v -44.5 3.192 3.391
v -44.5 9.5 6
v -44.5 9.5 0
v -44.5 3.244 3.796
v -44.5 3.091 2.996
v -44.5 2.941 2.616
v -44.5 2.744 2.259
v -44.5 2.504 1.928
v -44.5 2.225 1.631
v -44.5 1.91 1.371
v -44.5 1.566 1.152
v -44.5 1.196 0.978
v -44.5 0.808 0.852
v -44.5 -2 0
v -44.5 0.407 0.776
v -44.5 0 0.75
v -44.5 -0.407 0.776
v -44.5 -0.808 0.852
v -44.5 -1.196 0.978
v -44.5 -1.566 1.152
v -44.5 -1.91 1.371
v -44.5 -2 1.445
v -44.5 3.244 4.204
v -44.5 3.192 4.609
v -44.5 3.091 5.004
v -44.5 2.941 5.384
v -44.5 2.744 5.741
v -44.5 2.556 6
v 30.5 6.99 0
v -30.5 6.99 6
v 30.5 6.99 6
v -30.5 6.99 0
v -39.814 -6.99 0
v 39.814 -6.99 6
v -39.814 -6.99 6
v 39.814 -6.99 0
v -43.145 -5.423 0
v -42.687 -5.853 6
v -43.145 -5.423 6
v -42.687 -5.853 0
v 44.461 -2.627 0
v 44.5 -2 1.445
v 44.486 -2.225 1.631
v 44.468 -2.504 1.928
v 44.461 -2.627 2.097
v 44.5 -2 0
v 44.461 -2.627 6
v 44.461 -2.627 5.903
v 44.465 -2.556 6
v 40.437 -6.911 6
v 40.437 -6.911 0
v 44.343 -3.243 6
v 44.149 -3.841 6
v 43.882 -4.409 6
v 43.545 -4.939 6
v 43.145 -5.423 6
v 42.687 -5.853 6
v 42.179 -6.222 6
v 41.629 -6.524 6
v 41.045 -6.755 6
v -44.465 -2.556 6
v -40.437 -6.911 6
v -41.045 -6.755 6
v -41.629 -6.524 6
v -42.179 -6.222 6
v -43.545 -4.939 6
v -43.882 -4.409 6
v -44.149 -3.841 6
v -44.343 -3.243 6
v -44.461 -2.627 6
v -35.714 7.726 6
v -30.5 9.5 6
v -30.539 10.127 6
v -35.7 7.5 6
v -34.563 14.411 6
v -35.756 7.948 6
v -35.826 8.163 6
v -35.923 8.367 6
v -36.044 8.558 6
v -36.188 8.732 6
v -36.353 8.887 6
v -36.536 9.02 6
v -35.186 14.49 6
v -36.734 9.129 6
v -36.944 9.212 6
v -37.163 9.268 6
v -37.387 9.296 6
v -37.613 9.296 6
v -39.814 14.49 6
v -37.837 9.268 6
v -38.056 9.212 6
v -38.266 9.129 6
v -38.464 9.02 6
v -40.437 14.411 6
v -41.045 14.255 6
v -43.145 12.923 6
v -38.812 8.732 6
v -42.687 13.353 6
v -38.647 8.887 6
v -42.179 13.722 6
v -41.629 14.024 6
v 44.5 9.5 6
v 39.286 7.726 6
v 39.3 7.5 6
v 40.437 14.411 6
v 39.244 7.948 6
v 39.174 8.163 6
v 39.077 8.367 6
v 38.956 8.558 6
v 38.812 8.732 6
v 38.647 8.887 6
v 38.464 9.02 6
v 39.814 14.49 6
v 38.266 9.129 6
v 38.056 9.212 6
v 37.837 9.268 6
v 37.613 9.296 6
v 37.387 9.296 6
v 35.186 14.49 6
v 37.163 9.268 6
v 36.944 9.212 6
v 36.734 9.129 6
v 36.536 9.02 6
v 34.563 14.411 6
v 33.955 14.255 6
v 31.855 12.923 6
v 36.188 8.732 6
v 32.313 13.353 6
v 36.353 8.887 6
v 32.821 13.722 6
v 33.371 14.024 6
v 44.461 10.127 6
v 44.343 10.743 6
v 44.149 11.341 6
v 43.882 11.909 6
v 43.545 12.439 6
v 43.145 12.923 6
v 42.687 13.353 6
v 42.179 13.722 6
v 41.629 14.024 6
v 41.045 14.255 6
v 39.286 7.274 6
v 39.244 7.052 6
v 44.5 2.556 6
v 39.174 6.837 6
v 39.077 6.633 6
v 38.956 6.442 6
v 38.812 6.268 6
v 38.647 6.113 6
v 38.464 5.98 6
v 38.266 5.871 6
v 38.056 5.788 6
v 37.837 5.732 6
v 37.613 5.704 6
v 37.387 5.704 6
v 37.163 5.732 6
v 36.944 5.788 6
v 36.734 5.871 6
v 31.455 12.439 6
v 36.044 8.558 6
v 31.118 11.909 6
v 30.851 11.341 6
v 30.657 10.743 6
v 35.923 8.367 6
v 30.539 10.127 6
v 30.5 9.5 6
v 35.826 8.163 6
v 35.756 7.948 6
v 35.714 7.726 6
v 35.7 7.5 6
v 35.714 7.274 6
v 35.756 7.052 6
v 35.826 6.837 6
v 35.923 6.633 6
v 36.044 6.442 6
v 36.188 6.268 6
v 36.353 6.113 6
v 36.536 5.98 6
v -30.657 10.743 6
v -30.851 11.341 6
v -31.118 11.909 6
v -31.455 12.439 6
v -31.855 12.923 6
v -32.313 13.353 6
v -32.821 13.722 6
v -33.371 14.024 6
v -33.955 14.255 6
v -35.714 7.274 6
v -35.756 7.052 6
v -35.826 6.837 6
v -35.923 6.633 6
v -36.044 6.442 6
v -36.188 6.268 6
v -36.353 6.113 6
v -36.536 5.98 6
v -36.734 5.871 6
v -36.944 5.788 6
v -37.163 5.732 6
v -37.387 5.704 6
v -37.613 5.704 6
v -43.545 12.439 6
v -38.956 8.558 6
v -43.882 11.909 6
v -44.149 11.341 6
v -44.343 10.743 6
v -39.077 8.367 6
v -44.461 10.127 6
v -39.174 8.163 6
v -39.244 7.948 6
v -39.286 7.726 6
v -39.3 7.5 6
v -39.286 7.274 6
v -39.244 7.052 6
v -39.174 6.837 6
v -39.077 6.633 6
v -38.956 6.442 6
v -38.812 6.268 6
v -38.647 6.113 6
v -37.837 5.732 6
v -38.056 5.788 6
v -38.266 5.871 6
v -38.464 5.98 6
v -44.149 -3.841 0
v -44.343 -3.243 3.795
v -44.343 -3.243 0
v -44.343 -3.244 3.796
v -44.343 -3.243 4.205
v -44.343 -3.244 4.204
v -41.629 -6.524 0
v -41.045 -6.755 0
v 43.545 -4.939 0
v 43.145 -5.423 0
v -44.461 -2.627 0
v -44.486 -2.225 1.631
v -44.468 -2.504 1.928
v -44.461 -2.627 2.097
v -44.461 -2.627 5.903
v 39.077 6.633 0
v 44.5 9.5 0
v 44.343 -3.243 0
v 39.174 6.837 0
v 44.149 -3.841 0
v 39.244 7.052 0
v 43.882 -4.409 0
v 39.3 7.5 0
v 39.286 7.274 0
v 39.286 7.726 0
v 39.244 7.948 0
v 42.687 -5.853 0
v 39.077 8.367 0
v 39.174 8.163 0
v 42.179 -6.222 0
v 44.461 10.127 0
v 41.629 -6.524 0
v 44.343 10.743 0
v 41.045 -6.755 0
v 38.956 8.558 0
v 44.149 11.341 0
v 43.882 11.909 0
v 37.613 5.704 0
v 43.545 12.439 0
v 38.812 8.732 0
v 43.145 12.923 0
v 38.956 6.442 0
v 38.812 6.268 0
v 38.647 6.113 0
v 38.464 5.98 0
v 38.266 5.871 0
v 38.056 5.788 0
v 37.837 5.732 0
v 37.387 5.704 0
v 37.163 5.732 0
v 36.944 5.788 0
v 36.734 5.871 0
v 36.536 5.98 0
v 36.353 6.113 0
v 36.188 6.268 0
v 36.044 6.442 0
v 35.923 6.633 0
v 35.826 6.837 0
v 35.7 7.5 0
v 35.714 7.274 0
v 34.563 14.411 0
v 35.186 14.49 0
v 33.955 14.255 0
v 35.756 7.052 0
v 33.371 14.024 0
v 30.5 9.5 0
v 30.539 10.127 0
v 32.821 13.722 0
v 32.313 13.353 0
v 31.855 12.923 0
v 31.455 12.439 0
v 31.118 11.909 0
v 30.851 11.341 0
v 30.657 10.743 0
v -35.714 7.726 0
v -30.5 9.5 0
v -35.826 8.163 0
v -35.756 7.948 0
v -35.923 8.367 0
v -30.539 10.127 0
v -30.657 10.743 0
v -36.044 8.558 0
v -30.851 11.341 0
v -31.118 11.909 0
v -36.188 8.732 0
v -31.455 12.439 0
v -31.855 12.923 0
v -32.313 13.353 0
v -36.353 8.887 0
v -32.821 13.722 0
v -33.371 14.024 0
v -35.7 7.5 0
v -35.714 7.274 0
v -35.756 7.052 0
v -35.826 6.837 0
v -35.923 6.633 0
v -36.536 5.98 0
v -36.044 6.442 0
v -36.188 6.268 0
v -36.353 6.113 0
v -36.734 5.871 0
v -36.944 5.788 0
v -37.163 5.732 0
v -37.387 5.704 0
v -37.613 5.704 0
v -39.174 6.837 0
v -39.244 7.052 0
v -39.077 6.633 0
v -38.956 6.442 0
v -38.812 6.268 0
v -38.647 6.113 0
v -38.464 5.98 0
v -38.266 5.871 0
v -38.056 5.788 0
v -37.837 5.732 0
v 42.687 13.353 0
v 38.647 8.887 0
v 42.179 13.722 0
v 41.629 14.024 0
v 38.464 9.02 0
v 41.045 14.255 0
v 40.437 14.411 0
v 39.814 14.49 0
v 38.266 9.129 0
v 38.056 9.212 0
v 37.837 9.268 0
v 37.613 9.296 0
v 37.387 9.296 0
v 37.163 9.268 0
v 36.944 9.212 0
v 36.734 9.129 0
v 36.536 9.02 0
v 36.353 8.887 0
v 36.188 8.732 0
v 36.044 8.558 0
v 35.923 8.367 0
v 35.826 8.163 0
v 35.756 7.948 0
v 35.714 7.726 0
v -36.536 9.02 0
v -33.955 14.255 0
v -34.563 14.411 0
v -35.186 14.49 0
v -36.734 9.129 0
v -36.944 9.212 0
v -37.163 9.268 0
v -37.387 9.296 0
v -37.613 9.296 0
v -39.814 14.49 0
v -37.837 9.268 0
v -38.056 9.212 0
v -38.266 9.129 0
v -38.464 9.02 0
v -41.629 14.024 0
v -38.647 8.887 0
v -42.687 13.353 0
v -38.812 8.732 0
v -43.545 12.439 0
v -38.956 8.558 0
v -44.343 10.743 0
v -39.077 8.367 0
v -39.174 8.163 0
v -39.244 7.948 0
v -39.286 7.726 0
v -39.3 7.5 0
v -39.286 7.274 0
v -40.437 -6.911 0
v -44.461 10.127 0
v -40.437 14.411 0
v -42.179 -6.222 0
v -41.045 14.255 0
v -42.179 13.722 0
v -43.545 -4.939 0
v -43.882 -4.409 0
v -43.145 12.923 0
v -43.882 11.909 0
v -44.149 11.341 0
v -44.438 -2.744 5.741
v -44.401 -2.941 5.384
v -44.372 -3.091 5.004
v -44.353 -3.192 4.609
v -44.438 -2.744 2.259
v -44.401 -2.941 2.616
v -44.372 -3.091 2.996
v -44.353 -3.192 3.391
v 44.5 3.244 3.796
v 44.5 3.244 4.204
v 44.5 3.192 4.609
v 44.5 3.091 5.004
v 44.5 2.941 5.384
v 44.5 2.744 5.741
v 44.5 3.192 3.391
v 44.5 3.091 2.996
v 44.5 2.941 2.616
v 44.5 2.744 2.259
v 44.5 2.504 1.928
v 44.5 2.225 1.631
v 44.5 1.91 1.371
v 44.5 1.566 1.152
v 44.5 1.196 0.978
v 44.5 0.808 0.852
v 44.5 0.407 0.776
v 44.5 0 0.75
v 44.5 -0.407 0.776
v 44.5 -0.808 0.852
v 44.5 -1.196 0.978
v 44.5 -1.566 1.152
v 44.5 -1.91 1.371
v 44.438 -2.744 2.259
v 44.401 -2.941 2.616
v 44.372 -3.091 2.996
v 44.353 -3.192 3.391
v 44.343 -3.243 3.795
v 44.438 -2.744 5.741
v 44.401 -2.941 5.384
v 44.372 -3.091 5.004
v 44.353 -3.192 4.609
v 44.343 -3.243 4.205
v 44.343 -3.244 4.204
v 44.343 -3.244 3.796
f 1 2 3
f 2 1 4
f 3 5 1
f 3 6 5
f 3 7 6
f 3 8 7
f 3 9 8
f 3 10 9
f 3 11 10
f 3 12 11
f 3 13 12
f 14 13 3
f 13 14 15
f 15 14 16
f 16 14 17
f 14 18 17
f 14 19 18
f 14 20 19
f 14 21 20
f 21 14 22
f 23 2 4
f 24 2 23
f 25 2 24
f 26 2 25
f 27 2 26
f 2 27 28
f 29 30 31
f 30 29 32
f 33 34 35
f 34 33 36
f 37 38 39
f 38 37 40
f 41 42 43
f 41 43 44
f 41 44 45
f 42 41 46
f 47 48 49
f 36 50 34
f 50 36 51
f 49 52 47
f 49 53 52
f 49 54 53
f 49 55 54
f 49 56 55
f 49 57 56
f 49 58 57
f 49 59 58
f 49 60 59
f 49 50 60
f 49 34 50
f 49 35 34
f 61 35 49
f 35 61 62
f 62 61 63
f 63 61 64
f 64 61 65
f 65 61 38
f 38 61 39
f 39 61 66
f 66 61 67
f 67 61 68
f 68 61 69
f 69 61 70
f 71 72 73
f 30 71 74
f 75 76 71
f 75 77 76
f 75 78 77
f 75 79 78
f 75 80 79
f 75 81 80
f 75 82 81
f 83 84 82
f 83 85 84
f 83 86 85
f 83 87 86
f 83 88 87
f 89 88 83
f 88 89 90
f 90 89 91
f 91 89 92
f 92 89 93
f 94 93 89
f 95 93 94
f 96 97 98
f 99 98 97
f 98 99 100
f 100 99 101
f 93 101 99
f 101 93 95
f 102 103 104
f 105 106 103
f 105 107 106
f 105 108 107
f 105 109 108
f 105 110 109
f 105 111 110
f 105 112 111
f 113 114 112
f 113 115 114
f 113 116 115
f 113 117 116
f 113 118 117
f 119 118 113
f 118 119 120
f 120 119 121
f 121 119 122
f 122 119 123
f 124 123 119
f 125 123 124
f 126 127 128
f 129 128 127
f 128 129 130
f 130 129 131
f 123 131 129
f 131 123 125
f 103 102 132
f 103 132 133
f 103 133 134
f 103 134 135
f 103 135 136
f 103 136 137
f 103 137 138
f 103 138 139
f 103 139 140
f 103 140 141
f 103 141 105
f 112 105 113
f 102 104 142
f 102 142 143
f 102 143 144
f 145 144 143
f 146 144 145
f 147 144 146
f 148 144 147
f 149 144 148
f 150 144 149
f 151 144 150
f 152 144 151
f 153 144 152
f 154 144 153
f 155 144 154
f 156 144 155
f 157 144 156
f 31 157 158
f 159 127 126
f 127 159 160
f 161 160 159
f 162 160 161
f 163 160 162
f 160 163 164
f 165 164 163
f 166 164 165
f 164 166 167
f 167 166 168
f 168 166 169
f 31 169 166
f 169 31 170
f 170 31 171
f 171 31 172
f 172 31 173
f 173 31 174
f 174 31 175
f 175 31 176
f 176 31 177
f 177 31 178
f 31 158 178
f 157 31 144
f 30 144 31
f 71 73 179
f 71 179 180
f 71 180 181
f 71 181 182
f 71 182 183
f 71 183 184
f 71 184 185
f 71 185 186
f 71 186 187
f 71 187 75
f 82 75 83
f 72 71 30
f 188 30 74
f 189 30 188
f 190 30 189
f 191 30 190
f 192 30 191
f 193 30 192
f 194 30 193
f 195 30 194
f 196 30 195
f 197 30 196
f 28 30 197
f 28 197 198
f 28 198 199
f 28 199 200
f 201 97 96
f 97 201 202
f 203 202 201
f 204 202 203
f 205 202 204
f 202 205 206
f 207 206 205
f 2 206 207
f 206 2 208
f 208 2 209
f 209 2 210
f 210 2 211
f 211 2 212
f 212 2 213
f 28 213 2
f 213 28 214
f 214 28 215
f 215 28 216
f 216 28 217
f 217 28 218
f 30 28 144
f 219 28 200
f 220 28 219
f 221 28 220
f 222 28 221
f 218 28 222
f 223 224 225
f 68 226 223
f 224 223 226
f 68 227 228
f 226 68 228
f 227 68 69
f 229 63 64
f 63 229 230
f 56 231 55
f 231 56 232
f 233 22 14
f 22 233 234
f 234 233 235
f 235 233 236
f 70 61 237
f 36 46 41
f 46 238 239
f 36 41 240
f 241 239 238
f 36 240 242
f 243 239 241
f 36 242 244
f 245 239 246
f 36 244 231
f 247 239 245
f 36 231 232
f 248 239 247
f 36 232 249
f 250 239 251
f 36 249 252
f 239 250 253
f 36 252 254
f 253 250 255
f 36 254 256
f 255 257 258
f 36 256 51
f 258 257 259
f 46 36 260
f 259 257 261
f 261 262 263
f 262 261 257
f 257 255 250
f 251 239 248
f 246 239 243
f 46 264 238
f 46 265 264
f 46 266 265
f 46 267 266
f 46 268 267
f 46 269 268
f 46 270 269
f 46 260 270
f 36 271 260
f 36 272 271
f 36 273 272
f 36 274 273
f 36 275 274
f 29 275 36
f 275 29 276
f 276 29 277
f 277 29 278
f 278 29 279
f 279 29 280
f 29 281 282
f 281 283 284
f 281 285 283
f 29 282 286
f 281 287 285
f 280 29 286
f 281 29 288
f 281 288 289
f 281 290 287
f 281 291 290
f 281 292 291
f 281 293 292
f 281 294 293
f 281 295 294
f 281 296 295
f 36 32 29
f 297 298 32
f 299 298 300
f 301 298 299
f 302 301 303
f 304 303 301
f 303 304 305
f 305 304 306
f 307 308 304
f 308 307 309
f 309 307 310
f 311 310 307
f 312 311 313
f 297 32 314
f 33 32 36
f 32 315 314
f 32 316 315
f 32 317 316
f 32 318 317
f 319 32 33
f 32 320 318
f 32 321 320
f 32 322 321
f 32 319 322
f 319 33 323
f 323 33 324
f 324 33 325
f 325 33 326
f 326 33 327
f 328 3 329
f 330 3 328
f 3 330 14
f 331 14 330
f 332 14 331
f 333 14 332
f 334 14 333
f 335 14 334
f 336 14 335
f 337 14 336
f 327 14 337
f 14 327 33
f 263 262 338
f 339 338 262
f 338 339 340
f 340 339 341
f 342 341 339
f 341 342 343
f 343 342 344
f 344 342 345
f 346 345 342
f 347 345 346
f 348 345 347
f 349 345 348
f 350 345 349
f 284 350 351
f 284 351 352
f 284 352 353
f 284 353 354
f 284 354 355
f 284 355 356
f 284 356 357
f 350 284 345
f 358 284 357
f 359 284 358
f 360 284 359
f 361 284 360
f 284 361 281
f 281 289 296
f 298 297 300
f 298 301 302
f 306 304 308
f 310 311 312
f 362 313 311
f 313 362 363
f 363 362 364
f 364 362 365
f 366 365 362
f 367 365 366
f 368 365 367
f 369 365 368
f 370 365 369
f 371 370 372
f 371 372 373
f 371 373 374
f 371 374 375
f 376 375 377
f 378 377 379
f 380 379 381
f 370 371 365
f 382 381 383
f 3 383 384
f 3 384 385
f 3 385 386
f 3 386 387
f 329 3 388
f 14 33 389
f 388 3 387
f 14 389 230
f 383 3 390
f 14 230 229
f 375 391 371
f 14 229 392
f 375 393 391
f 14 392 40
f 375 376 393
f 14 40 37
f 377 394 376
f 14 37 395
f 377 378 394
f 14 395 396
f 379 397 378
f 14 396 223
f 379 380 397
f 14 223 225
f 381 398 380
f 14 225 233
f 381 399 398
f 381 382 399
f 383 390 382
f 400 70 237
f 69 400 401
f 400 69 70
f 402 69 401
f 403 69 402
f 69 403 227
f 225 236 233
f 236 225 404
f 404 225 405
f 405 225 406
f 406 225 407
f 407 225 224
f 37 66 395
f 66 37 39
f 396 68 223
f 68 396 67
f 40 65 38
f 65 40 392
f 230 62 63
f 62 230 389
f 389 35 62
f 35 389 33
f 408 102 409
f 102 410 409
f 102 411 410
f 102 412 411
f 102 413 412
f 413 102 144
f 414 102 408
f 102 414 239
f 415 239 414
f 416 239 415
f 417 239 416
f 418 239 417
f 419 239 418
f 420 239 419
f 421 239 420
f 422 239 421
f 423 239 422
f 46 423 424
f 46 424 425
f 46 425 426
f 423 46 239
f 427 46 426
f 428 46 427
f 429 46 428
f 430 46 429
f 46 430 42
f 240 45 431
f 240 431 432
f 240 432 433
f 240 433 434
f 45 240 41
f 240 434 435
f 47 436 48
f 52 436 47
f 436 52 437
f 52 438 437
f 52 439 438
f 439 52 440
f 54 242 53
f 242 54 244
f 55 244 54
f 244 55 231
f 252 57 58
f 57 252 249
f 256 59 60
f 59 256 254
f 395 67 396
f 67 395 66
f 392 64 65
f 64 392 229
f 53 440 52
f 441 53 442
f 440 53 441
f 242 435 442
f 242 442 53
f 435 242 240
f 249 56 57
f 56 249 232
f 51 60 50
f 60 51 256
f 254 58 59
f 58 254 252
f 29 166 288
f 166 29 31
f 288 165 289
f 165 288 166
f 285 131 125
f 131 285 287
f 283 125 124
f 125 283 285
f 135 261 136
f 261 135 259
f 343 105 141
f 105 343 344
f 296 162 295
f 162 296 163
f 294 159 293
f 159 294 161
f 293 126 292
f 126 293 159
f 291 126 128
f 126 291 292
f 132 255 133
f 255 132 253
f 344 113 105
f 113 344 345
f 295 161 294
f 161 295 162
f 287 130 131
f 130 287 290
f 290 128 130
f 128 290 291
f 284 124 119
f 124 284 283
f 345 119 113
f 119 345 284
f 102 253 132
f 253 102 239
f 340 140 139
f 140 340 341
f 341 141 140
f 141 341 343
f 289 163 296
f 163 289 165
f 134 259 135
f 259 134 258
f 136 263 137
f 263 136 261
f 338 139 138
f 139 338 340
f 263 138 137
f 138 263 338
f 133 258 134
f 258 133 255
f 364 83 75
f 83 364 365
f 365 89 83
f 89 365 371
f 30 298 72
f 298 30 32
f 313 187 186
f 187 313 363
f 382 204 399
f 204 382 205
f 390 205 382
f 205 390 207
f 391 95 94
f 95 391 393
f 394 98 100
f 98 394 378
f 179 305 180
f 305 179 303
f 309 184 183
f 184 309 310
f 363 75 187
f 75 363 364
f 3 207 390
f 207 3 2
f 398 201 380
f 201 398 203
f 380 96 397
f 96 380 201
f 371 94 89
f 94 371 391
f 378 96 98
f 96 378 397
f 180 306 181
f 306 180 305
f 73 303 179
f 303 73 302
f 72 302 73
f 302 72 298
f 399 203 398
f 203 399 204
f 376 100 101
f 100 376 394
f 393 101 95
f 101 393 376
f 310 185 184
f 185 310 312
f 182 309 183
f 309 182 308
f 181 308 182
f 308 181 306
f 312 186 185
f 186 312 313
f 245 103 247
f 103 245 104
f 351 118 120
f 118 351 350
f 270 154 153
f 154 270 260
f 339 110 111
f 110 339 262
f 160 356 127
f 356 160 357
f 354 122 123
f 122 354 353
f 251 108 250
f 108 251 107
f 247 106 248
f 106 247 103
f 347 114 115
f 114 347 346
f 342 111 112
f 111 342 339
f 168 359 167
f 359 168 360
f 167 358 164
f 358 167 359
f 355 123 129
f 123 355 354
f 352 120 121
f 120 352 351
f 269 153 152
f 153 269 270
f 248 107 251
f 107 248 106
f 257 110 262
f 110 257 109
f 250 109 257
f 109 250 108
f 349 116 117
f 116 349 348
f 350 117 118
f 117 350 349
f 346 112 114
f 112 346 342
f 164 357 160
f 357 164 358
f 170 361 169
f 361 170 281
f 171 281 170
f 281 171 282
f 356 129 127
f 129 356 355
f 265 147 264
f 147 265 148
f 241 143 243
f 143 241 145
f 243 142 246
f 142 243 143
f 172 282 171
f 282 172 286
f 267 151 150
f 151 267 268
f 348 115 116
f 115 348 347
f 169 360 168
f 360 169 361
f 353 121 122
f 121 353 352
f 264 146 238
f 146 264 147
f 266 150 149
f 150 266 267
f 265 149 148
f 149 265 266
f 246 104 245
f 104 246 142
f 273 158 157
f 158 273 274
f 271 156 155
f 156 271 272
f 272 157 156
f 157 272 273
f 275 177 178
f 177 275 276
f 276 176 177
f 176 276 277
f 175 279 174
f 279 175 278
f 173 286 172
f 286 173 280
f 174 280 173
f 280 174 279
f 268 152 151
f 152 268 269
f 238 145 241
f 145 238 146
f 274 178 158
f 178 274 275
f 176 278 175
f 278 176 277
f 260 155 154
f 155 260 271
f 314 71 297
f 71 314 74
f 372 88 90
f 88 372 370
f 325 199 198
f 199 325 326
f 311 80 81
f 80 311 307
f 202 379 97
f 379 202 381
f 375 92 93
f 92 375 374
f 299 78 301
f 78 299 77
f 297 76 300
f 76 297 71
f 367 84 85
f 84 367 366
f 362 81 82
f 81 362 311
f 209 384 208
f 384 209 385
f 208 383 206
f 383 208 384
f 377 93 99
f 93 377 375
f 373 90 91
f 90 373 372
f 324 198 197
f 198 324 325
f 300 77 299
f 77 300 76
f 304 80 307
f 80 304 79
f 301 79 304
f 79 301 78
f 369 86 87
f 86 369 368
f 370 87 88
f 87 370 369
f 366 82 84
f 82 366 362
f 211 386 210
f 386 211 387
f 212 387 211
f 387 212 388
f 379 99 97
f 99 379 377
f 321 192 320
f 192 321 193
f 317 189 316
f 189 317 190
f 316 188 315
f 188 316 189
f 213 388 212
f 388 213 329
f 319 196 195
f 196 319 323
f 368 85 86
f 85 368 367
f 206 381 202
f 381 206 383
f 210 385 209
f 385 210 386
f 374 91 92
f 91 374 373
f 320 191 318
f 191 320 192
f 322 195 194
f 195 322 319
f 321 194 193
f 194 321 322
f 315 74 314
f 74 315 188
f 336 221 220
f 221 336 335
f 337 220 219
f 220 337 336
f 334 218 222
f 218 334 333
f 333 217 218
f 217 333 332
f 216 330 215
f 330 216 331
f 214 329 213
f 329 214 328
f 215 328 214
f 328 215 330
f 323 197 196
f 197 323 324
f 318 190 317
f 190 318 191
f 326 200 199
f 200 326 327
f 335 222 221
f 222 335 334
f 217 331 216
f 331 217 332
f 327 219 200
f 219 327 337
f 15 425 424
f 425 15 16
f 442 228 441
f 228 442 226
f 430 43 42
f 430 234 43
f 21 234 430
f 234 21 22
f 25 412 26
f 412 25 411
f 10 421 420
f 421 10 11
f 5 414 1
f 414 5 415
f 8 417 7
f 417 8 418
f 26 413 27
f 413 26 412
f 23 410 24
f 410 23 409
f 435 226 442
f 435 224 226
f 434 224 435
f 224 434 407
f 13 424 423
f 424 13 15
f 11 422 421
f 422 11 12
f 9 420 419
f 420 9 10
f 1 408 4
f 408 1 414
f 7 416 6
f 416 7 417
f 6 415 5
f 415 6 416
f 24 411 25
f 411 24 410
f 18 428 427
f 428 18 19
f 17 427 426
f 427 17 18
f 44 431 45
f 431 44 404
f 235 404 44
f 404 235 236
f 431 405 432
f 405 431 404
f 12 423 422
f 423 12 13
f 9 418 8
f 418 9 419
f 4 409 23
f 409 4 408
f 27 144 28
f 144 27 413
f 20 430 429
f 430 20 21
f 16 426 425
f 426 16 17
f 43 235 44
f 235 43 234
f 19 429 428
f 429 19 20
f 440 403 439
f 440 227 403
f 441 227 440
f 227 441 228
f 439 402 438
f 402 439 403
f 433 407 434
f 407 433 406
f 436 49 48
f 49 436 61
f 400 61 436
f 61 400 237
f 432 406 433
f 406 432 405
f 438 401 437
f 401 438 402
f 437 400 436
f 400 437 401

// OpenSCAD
$fn = 50;


difference() {
	union() {
		hull() {
			translate(v = [-39.5000000000, 2.0000000000, 0]) {
				cylinder(h = 6, r = 5);
			}
			translate(v = [39.5000000000, 2.0000000000, 0]) {
				cylinder(h = 6, r = 5);
			}
			translate(v = [-39.5000000000, -2.0000000000, 0]) {
				cylinder(h = 6, r = 5);
			}
			translate(v = [39.5000000000, -2.0000000000, 0]) {
				cylinder(h = 6, r = 5);
			}
		}
		translate(v = [37.5000000000, 3.7500000000, 0]) {
			hull() {
				translate(v = [-2.0000000000, 5.7500000000, 0]) {
					cylinder(h = 6, r = 5);
				}
				translate(v = [2.0000000000, 5.7500000000, 0]) {
					cylinder(h = 6, r = 5);
				}
				translate(v = [-2.0000000000, -5.7500000000, 0]) {
					cylinder(h = 6, r = 5);
				}
				translate(v = [2.0000000000, -5.7500000000, 0]) {
					cylinder(h = 6, r = 5);
				}
			}
		}
		translate(v = [-37.5000000000, 3.7500000000, 0]) {
			hull() {
				translate(v = [-2.0000000000, 5.7500000000, 0]) {
					cylinder(h = 6, r = 5);
				}
				translate(v = [2.0000000000, 5.7500000000, 0]) {
					cylinder(h = 6, r = 5);
				}
				translate(v = [-2.0000000000, -5.7500000000, 0]) {
					cylinder(h = 6, r = 5);
				}
				translate(v = [2.0000000000, -5.7500000000, 0]) {
					cylinder(h = 6, r = 5);
				}
			}
		}
	}
	union() {
		#translate(v = [37.5000000000, 7.5000000000, 0]) {
			cylinder(h = 6, r = 1.8000000000);
		}
		#translate(v = [-37.5000000000, 7.5000000000, 0]) {
			cylinder(h = 6, r = 1.8000000000);
		}
		translate(v = [-45.0000000000, 0, 4.0000000000]) {
			rotate(a = [0, 90, 0]) {
				cylinder(h = 90, r = 3.2500000000);
			}
		}
	}
}
